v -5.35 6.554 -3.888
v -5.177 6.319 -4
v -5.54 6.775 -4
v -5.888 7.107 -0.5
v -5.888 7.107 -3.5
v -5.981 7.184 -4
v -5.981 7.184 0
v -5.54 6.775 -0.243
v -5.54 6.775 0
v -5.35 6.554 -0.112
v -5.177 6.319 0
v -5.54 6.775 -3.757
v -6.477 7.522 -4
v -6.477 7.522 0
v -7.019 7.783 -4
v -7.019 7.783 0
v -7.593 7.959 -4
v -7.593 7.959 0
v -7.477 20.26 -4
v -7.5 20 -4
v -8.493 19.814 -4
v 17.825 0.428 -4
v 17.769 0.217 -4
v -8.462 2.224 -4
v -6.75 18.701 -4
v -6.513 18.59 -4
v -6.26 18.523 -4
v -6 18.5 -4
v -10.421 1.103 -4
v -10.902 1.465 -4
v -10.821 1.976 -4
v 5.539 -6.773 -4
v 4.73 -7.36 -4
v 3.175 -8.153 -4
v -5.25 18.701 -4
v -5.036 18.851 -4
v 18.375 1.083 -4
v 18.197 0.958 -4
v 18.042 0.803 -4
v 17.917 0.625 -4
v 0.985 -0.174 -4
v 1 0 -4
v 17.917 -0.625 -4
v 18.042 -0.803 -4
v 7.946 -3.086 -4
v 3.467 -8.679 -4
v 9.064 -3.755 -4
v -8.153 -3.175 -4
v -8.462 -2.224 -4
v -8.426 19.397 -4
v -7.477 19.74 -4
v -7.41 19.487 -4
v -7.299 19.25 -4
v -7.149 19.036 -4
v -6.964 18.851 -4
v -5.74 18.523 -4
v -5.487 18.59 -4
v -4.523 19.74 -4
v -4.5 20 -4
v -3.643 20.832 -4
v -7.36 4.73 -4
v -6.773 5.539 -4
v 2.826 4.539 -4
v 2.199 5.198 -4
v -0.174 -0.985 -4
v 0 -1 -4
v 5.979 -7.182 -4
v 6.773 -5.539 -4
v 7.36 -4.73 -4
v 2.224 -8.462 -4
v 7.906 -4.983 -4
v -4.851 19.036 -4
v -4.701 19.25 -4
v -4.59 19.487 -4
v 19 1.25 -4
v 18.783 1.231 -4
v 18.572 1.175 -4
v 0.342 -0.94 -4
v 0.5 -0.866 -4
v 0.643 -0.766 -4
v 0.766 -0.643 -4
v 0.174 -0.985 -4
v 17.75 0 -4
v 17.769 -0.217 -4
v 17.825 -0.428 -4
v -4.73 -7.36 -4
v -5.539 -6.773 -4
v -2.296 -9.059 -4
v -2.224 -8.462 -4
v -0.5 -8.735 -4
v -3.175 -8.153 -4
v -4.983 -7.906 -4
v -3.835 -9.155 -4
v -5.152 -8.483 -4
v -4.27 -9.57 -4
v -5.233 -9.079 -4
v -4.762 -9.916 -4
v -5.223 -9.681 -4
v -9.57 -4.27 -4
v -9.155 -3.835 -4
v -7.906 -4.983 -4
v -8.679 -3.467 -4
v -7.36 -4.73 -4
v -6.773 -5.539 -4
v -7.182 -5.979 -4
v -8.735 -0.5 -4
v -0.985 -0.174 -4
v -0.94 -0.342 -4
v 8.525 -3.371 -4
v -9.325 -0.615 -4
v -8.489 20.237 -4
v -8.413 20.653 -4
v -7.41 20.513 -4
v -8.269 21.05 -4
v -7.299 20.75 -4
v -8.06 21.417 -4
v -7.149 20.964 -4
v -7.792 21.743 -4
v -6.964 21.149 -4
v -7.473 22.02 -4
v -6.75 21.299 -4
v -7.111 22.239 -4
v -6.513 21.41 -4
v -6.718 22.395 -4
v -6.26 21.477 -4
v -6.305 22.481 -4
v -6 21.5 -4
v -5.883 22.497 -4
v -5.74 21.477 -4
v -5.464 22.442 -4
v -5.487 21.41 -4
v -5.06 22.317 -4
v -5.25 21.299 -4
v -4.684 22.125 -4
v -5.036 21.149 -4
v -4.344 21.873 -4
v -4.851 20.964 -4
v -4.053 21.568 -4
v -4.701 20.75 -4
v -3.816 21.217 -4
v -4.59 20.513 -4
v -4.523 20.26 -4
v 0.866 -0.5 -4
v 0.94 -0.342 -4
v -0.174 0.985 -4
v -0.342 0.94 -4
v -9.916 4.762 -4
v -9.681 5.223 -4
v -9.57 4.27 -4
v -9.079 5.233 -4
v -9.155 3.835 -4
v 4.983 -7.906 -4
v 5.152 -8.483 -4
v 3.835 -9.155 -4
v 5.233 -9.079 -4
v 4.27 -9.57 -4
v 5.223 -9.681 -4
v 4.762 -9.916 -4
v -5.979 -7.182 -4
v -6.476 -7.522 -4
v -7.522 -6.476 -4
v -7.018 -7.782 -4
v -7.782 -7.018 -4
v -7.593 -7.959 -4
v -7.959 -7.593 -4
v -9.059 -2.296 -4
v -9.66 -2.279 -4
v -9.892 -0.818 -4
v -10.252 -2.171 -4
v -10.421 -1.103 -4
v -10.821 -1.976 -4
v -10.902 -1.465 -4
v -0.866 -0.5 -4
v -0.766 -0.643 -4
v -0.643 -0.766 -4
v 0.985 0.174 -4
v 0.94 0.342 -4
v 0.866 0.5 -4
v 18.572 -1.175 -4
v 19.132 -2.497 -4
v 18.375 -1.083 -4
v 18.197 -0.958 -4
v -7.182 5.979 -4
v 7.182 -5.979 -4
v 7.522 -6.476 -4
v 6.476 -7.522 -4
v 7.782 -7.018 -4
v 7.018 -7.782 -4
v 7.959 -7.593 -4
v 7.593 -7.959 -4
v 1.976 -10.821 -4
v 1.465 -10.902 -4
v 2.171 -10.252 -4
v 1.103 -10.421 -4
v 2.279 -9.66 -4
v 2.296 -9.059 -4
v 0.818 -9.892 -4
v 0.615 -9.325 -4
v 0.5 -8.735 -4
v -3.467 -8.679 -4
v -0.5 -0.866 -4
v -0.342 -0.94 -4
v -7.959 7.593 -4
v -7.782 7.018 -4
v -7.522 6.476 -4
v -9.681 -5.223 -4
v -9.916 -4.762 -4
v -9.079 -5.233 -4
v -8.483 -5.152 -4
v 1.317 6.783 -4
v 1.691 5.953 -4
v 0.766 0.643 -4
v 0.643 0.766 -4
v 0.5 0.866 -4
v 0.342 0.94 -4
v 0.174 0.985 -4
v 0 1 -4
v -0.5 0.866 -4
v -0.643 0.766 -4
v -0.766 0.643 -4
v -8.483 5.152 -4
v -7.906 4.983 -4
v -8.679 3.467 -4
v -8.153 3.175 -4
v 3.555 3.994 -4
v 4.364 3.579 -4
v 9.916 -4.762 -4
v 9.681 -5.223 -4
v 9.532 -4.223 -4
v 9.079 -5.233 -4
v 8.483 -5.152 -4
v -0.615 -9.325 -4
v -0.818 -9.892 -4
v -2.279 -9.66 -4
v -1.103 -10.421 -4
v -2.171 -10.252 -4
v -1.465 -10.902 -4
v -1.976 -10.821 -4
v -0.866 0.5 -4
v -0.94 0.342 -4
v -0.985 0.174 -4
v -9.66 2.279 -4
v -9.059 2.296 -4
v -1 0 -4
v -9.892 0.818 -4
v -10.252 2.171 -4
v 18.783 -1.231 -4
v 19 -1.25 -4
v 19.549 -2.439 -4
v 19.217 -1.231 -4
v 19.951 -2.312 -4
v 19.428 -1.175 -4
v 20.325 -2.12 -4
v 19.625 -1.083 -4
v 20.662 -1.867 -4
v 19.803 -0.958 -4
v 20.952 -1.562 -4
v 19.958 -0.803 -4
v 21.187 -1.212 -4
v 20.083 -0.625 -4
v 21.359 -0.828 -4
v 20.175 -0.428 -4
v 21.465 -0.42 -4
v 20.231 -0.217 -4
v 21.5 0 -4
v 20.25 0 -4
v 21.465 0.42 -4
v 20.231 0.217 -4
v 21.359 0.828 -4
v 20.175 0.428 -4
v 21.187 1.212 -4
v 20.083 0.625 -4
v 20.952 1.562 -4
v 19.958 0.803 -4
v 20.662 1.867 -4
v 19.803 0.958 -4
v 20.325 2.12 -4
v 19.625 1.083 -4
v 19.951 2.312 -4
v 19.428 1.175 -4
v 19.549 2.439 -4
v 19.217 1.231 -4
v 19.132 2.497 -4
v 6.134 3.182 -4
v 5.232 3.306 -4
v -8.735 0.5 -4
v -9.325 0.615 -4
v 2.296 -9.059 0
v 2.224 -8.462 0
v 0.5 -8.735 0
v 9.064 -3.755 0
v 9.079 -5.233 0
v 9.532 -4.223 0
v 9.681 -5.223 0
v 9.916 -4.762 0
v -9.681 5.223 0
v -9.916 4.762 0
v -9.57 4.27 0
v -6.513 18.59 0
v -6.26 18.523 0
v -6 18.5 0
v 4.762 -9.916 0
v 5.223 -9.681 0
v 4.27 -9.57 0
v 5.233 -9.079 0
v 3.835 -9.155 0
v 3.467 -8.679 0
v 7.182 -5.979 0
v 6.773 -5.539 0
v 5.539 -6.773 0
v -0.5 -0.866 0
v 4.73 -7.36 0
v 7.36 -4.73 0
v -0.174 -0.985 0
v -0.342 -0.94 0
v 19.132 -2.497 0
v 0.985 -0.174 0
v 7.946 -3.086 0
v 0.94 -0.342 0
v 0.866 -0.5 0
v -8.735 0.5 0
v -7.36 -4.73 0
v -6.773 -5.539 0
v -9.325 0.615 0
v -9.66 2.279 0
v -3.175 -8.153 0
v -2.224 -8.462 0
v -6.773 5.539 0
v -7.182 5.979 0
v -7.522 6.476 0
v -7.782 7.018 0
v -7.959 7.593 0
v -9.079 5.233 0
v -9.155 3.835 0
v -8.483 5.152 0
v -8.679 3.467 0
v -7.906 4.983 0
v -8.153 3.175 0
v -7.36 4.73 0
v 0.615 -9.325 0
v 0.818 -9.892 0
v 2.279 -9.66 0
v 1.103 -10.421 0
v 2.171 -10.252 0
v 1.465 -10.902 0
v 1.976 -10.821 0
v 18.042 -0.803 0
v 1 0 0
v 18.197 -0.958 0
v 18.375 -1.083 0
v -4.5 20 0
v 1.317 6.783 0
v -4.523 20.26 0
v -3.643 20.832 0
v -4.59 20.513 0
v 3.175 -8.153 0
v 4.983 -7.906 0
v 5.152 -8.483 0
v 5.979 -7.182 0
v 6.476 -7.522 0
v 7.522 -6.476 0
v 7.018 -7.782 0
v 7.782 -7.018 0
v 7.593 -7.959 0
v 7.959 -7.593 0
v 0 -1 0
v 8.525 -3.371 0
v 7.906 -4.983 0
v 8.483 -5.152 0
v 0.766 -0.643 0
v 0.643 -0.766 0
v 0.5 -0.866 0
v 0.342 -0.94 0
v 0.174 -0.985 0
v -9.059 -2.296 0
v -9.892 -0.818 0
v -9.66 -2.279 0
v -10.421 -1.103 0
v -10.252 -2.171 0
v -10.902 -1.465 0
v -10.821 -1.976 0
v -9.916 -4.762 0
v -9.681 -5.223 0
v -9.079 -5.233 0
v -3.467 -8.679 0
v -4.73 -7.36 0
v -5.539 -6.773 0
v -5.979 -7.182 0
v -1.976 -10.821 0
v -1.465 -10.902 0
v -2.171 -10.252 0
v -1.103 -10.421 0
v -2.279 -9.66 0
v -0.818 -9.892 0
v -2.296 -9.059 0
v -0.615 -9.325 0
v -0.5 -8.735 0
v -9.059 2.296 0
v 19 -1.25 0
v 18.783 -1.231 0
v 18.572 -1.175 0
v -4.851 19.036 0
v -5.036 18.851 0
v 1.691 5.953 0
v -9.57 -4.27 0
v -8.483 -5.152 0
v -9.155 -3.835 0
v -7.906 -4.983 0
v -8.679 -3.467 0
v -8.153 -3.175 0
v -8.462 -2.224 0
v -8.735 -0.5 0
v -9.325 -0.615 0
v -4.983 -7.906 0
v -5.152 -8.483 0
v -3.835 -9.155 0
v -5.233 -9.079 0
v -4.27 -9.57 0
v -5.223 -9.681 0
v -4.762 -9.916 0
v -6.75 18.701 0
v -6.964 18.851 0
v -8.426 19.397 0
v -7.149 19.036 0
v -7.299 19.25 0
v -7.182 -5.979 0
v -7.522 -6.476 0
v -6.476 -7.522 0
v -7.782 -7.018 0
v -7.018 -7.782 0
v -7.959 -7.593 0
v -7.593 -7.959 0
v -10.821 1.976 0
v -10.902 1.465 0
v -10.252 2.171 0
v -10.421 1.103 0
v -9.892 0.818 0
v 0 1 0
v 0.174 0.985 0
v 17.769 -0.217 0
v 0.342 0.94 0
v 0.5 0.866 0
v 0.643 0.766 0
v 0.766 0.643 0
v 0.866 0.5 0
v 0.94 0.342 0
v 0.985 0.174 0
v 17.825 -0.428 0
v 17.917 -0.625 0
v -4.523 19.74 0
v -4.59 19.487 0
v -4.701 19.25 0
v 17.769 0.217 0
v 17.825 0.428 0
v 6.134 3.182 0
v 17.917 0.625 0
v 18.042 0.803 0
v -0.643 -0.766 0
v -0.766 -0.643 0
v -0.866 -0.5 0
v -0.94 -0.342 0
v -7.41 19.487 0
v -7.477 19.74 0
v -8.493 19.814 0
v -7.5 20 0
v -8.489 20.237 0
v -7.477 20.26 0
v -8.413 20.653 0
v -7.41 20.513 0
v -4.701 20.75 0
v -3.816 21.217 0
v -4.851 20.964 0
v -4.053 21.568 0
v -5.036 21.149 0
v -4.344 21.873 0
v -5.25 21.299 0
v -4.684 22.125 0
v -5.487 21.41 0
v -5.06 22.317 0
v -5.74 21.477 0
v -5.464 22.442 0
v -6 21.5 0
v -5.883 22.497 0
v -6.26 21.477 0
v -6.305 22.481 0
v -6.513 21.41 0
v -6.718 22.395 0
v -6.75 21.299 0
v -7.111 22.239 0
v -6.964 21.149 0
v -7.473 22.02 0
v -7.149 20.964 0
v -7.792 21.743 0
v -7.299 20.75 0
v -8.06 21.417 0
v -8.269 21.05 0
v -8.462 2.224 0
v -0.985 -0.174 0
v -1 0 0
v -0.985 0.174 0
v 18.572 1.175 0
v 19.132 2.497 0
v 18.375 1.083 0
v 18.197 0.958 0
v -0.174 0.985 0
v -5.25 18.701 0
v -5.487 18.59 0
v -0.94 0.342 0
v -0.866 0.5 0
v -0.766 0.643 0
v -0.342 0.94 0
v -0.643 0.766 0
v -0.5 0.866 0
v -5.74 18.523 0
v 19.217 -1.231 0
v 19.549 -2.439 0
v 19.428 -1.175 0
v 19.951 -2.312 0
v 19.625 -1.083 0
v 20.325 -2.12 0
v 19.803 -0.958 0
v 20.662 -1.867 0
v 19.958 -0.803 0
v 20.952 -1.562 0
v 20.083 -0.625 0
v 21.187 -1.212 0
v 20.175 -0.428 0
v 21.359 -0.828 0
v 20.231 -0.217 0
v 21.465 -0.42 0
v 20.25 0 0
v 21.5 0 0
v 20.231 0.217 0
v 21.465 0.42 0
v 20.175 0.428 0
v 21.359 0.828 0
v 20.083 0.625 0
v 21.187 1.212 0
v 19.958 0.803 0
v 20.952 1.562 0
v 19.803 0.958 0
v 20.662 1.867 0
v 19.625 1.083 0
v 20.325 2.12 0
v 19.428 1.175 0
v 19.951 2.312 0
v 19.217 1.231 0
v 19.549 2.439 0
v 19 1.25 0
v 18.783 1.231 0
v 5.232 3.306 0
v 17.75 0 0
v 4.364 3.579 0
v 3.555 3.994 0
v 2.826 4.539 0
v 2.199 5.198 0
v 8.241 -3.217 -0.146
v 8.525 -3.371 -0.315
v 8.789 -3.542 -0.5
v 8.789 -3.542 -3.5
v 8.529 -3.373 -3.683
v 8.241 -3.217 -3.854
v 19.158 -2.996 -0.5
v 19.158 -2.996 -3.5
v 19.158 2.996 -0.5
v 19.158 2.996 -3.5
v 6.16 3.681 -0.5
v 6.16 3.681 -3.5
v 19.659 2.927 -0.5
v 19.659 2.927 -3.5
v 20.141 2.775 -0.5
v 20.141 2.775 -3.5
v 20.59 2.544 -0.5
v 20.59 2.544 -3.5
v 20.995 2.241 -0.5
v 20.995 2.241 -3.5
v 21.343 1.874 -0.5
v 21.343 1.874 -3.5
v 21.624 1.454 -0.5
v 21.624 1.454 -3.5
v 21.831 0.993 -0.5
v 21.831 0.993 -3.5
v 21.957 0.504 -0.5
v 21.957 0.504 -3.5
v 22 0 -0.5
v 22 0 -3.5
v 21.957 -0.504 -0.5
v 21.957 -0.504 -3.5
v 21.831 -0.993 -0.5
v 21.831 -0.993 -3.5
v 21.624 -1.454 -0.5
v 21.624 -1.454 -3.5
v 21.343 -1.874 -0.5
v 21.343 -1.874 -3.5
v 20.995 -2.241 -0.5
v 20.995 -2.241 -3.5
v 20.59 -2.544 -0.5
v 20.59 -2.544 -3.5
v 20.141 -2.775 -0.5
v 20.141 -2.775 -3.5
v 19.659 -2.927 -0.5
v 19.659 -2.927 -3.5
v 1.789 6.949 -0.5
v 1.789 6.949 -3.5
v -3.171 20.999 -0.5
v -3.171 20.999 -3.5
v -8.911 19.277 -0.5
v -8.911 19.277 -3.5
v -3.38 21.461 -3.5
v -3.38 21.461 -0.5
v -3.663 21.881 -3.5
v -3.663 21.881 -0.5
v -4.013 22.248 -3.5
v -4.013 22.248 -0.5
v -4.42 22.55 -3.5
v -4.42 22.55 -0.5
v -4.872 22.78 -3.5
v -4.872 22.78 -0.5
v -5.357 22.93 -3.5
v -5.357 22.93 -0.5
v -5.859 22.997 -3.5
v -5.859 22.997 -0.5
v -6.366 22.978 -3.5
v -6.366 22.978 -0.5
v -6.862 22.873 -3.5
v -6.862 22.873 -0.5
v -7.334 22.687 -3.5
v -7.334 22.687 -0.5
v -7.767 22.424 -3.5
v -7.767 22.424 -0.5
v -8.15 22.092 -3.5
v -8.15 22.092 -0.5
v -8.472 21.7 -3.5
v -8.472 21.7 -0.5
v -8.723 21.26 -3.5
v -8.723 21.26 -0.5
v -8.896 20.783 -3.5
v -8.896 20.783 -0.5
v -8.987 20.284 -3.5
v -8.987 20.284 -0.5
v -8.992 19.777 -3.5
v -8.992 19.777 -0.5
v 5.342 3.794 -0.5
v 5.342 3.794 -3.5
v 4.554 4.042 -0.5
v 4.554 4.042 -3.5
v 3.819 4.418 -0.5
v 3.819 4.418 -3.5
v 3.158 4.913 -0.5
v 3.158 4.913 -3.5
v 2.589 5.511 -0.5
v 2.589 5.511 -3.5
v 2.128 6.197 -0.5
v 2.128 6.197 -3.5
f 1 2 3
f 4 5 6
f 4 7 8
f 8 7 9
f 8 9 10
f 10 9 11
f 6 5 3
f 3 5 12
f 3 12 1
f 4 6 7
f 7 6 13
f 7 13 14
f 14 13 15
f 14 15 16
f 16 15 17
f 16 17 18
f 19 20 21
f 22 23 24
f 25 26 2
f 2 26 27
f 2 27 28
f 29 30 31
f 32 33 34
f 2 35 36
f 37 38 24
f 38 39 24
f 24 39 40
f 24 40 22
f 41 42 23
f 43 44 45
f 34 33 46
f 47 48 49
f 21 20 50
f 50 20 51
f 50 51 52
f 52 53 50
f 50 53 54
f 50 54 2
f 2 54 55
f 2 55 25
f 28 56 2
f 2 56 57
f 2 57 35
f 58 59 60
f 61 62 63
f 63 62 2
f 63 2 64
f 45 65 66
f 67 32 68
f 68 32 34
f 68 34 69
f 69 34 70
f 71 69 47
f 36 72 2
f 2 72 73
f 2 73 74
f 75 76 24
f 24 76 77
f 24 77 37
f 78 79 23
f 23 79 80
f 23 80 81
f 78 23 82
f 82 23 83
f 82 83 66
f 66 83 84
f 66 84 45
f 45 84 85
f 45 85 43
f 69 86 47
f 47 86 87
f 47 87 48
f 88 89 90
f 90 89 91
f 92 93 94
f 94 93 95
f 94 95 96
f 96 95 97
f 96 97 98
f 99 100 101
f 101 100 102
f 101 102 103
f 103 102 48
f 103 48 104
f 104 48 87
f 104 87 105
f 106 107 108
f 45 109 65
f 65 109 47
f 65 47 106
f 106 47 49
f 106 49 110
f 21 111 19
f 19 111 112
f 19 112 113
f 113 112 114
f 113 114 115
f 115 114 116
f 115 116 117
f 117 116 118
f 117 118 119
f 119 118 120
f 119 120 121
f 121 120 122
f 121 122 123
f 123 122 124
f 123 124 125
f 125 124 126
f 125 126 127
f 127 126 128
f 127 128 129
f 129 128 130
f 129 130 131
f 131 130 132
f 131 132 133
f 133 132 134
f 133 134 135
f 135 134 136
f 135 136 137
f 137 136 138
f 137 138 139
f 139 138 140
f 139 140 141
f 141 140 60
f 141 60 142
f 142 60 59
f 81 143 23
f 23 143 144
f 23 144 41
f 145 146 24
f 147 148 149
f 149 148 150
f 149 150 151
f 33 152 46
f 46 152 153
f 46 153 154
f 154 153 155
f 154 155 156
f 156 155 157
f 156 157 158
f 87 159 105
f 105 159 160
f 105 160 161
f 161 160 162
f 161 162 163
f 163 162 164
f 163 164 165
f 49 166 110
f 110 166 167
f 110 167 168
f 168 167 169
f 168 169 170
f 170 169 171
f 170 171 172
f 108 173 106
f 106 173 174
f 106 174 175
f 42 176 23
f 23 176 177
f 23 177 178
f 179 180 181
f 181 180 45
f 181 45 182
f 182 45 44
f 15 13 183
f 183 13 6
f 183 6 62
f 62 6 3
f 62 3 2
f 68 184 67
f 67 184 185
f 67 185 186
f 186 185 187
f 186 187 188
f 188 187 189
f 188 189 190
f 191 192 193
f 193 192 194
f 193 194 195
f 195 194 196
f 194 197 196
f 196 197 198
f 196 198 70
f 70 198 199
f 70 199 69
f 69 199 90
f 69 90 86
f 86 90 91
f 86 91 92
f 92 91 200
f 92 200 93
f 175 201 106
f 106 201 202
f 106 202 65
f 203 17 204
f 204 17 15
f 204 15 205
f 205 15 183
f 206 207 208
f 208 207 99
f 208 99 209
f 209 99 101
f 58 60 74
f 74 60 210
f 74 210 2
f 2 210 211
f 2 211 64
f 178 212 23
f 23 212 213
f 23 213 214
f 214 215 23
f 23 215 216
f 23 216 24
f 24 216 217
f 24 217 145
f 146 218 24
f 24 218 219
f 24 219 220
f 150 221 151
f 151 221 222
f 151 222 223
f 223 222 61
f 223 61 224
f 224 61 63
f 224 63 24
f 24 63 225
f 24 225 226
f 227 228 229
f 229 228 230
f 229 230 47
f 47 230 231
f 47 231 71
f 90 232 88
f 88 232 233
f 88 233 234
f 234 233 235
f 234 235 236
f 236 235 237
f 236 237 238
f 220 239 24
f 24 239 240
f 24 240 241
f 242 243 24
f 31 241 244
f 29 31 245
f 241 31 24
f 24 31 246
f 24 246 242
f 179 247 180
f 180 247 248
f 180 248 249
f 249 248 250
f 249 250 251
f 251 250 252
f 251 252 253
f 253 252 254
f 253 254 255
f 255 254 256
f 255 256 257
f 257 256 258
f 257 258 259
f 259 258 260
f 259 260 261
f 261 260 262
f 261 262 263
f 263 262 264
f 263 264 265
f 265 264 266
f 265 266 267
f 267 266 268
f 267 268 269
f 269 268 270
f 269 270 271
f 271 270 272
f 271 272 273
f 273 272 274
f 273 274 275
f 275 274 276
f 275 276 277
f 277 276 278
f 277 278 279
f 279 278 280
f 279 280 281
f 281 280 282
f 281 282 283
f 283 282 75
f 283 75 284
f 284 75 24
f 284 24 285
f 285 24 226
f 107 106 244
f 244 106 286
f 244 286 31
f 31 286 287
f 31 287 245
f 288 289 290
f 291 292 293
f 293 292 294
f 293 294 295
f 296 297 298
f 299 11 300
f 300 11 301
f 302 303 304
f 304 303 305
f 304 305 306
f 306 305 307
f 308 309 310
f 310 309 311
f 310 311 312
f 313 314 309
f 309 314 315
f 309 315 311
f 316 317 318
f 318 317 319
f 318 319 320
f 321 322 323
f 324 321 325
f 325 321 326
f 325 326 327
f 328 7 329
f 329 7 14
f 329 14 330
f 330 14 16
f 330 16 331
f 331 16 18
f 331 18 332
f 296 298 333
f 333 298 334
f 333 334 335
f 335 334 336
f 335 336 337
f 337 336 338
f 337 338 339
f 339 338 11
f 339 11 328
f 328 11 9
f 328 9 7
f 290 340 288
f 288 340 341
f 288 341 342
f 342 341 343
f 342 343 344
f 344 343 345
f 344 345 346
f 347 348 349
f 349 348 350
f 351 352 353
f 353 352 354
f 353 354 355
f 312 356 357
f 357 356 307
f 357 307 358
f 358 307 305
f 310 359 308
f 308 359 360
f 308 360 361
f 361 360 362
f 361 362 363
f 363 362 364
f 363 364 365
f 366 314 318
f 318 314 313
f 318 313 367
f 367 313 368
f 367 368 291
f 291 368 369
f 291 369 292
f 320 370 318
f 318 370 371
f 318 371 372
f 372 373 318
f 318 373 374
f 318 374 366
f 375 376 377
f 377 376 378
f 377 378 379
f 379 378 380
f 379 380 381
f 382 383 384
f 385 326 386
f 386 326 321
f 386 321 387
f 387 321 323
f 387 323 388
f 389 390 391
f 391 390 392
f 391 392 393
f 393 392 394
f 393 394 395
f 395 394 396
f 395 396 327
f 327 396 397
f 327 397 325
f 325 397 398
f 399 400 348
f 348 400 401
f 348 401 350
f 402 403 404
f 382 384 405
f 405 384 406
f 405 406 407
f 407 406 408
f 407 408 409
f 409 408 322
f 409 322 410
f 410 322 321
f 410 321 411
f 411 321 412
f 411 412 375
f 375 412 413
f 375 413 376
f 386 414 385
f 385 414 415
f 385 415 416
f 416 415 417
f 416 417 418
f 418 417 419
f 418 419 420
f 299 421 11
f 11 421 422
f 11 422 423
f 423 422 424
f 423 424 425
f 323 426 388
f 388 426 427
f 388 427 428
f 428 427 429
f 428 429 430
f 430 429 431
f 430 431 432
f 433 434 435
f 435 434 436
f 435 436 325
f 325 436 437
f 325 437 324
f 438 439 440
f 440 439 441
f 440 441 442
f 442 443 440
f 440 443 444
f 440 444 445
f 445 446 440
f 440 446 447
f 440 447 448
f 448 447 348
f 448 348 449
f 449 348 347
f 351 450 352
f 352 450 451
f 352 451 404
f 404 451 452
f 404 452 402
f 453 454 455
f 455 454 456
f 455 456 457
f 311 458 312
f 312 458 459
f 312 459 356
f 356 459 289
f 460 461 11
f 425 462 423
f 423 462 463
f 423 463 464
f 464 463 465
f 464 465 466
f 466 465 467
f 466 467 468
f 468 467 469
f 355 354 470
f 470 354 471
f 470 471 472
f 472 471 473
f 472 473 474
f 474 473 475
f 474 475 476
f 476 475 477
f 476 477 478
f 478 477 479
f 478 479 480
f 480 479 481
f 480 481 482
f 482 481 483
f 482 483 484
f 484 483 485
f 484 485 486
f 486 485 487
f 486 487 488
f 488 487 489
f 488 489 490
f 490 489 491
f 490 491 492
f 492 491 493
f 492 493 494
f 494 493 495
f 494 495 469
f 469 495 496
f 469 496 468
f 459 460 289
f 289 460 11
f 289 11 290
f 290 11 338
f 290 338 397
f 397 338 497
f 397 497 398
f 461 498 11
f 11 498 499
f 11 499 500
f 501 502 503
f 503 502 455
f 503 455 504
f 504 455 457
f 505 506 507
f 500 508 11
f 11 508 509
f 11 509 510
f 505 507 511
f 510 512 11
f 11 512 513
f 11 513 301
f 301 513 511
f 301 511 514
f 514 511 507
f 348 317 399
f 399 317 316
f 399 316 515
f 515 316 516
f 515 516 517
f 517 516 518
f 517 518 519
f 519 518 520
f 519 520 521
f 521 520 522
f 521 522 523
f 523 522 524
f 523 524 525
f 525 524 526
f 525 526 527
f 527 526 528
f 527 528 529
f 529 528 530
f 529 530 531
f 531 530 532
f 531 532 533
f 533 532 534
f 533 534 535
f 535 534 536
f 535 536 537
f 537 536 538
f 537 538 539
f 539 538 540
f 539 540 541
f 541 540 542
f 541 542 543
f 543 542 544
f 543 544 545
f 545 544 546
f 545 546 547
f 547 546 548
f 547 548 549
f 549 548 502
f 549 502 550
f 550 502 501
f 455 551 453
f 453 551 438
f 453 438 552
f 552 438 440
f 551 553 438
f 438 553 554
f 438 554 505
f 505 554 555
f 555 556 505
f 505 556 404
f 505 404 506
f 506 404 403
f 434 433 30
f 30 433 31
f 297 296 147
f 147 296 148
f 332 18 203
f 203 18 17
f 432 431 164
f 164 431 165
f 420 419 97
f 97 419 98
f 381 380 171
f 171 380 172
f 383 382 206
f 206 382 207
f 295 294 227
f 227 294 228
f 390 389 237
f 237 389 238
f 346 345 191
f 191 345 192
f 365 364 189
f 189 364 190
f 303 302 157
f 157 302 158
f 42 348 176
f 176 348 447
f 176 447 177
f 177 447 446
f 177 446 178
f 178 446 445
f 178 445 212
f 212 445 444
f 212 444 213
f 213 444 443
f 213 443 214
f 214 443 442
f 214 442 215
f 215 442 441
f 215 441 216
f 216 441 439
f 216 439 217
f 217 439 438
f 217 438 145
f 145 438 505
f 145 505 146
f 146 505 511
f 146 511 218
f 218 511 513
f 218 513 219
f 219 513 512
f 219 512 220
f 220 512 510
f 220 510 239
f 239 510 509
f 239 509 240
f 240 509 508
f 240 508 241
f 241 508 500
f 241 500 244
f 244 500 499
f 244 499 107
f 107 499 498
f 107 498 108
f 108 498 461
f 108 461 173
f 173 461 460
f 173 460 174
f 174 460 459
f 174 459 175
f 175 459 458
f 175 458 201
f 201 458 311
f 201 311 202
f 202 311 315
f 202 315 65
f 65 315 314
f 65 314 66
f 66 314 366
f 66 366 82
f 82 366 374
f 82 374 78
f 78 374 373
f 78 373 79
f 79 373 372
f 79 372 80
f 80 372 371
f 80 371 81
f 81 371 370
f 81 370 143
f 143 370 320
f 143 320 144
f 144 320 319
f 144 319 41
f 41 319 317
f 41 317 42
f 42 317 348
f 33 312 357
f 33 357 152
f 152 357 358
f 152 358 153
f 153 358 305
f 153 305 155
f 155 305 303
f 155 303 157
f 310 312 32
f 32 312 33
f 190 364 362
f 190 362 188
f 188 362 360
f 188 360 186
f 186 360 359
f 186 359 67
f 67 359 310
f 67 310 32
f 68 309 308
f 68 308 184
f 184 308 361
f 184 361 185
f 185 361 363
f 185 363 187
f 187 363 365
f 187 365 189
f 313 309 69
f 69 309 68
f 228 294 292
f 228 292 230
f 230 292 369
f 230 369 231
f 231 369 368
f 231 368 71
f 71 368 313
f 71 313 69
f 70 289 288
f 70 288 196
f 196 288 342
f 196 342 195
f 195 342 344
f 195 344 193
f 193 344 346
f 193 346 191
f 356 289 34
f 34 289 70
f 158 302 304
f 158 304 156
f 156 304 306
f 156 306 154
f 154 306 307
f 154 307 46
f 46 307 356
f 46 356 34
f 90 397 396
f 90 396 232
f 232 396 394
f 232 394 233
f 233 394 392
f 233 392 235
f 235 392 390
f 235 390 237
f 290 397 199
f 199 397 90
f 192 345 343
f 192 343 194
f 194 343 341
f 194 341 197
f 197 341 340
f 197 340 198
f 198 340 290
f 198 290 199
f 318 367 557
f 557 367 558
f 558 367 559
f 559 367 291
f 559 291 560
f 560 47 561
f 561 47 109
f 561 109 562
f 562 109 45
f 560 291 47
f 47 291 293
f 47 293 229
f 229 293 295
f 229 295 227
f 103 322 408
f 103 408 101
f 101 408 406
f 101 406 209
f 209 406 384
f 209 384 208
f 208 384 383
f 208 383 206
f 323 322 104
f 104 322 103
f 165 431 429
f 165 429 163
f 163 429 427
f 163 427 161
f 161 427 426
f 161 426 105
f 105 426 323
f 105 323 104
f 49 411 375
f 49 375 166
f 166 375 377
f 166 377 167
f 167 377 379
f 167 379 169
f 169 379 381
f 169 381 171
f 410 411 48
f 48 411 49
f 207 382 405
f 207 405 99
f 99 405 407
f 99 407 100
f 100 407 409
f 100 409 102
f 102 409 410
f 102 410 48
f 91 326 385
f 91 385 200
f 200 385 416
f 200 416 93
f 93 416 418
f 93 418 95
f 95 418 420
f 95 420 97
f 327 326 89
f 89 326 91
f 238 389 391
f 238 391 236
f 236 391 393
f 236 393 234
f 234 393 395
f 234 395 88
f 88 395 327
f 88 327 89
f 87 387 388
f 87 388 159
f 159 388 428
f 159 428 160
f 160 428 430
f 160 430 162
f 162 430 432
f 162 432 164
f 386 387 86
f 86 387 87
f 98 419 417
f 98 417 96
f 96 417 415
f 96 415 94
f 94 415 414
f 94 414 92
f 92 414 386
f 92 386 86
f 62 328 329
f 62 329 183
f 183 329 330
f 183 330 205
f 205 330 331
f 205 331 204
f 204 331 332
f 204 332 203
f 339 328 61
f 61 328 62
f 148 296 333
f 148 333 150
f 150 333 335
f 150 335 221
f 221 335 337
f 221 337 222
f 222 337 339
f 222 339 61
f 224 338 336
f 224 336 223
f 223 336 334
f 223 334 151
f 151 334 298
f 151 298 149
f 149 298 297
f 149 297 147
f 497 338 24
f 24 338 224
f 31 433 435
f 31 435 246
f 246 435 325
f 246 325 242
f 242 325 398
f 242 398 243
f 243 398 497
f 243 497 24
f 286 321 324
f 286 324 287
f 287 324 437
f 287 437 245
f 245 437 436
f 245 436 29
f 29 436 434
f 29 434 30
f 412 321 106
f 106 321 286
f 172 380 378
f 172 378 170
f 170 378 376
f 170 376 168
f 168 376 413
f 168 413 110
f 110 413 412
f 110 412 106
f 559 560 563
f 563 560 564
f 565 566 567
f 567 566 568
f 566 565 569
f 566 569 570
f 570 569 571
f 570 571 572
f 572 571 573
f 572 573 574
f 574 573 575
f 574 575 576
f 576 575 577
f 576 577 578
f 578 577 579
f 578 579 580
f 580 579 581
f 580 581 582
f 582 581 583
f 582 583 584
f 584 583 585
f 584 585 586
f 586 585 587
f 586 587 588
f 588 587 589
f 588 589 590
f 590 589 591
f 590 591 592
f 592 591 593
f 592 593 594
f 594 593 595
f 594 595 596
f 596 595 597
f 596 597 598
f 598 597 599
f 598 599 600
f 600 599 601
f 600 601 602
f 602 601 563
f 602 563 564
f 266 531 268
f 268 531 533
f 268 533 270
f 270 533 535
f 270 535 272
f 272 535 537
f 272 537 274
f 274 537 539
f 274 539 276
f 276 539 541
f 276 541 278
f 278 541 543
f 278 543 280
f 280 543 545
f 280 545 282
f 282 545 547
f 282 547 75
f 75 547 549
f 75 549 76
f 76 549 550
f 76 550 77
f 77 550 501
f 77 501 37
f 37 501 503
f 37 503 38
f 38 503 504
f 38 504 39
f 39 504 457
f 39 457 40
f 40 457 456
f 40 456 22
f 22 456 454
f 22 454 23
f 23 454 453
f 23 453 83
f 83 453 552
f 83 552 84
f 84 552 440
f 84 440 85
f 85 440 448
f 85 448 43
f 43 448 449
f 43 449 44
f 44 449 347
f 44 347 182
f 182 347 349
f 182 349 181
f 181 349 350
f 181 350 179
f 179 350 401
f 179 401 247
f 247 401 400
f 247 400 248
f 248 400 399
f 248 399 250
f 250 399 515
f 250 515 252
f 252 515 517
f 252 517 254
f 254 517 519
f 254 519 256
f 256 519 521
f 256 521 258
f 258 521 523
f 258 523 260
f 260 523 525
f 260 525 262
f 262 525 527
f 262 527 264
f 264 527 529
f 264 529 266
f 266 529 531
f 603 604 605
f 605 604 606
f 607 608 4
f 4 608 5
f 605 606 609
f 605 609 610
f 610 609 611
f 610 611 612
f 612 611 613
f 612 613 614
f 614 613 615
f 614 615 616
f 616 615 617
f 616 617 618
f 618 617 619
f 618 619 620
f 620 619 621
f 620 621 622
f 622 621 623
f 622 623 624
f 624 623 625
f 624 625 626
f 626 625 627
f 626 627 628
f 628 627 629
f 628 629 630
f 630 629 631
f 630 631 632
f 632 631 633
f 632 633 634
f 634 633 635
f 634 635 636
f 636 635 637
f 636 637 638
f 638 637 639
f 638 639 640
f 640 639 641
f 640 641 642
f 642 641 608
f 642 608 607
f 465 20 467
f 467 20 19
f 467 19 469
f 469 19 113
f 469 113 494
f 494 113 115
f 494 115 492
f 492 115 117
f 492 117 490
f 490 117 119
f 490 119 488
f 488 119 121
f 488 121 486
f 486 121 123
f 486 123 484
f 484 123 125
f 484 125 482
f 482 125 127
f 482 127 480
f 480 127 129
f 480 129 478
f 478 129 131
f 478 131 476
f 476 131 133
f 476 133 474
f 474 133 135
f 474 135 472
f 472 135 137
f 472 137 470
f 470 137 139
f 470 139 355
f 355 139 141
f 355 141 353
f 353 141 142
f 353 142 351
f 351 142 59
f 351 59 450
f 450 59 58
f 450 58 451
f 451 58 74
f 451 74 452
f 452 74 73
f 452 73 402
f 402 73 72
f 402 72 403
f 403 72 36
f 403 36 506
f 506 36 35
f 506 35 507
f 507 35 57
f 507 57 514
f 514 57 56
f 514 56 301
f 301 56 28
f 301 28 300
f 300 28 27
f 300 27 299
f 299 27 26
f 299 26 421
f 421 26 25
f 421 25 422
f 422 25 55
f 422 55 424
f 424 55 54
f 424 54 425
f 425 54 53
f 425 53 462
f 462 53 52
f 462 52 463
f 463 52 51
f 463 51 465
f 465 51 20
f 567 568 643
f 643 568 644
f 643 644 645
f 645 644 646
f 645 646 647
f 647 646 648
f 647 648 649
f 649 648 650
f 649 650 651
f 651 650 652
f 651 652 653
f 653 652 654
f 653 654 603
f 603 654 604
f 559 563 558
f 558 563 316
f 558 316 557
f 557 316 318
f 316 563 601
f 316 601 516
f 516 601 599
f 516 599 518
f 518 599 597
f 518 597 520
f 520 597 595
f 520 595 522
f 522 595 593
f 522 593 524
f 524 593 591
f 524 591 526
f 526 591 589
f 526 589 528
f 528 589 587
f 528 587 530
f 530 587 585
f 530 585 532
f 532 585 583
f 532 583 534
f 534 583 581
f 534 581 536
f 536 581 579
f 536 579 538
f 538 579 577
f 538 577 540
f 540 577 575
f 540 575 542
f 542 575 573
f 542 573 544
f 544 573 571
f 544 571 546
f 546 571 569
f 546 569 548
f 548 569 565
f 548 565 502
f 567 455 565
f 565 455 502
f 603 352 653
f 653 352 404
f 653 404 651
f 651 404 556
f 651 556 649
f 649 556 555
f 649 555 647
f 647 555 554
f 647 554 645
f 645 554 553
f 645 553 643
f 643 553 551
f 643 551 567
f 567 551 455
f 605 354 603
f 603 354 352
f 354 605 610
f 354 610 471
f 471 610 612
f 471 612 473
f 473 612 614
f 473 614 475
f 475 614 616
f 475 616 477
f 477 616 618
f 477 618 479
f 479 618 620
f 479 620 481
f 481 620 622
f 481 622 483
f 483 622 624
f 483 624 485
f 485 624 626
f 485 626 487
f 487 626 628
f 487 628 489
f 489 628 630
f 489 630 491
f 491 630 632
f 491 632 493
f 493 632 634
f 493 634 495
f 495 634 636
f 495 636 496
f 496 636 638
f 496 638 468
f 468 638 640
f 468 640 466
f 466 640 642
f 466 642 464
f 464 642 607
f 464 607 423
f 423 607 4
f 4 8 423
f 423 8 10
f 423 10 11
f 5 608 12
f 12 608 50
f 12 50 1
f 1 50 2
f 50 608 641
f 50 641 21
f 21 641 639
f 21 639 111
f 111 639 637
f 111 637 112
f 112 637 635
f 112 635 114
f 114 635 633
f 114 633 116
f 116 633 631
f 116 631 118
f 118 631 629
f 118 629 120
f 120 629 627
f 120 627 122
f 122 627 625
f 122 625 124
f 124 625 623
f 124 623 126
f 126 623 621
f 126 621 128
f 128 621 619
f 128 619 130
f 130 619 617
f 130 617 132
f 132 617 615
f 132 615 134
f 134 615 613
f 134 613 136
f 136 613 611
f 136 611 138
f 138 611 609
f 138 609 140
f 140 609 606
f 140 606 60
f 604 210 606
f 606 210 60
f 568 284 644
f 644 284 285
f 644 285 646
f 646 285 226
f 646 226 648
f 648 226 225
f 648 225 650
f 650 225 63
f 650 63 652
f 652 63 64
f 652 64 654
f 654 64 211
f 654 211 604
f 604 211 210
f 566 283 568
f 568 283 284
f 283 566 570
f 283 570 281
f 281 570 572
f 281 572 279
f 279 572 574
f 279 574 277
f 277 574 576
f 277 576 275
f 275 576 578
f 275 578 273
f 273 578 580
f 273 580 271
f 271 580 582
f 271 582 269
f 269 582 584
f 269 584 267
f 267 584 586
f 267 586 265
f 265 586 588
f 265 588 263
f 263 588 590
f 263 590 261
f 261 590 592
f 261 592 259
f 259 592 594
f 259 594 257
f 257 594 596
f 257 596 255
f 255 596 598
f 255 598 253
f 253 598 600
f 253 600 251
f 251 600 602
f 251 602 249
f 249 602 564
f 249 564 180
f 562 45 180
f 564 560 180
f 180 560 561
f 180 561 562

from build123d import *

# Parameters (mm, degrees)
CROQUIS7_R              = 11
CROQUIS7_R_2            = 1
SALIENTE_EXTRUIR4_DEPTH = 4
CORTAR_EXTRUIR3_DEPTH   = 17.062378404
MATRIZC3_COUNT          = 20
CROQUIS9_R              = 1
CROQUIS9_R_2            = 1.25
SALIENTE_EXTRUIR5_DEPTH = 4
CROQUIS2_R              = 1
CROQUIS2_R_2            = 1.5
SALIENTE_EXTRUIR2_DEPTH = 4
CORTAR_EXTRUIR4_DEPTH   = 33.078029865
CHAFL_N1_SIZE           = 0.5


with BuildPart() as part:
    # Croquis7 → Saliente-Extruir4 (new body)
    with BuildSketch(Plane.XY):
        Circle(CROQUIS7_R)
        Circle(CROQUIS7_R_2, mode=Mode.SUBTRACT)
    extrude(amount=-SALIENTE_EXTRUIR4_DEPTH)

    # Croquis10 → Cortar-Extruir3 (cut, through all)
    with BuildSketch(Plane.XY):
        with BuildLine():
            ThreePointArc((0.499924007, 8.734705318), (0, 8.749), (-0.499924007, 8.734705318))
            ThreePointArc((-0.499924007, 8.734705318), (-0.824302243, 9.905497836), (-1.485192705, 10.924909509))
            ThreePointArc((-1.485192705, 10.924909509), (0, 11.0254), (1.485192705, 10.924909509))
            ThreePointArc((1.485192705, 10.924909509), (0.824302243, 9.905497836), (0.499924007, 8.734705318))
        make_face()
    cortar_extruir3 = extrude(amount=-CORTAR_EXTRUIR3_DEPTH, mode=Mode.SUBTRACT)

    # MatrizC3: Cortar-Extruir3 ×20 about axis
    matrizc3_axis = Axis((0, 0, 0), (0, 0, 1))
    for i in range(1, MATRIZC3_COUNT):
        add(cortar_extruir3.rotate(matrizc3_axis, i * 360 / MATRIZC3_COUNT), mode=Mode.SUBTRACT)

    # Croquis9 → Saliente-Extruir5 (add)
    with BuildSketch(Plane.XY):
        with BuildLine():
            Line((0.210526316, 3.994455992), (19.157894737, 2.995841994))
            ThreePointArc((19.157894737, 2.995841994), (22, 0), (19.157894737, -2.995841994))
            Line((19.157894737, -2.995841994), (0.210526316, -3.994455992))
            ThreePointArc((0.210526316, -3.994455992), (-4, 0), (0.210526316, 3.994455992))
        make_face()
        Circle(CROQUIS9_R, mode=Mode.SUBTRACT)
        with Locations((19, 0)):
            Circle(CROQUIS9_R_2, mode=Mode.SUBTRACT)
    extrude(amount=-SALIENTE_EXTRUIR5_DEPTH)

    # Croquis2 → Saliente-Extruir2 (add, through all)
    with BuildSketch(Plane.XY.offset(-4)):
        with BuildLine():
            Line((-3.171102714, 20.998669186), (3.771863049, 1.331558915))
            ThreePointArc((3.771863049, 1.331558915), (1.149391542, -3.831305141), (-3.881954792, -0.964586438))
            Line((-3.881954792, -0.964586438), (-8.911466094, 19.276560172))
            ThreePointArc((-8.911466094, 19.276560172), (-6.862043657, 22.873478856), (-3.171102714, 20.998669186))
        make_face()
        Circle(CROQUIS2_R, mode=Mode.SUBTRACT)
        with Locations((-6, 20)):
            Circle(CROQUIS2_R_2, mode=Mode.SUBTRACT)
    extrude(amount=SALIENTE_EXTRUIR2_DEPTH)

    # Croquis11 → Cortar-Extruir4 (cut, through all)
    with BuildSketch(Plane(origin=(0, 0, -4), x_dir=(-1, 0, 0), z_dir=(0, 0, -1))):
        with BuildLine():
            Line((-0.780626911, 9.804734929), (-1.788639616, 6.949370564))
            ThreePointArc((-1.788639616, 6.949370564), (-3.478211644, 4.651731754), (-6.159867825, 3.680898163))
            Line((-6.159867825, 3.680898163), (-8.789028829, 3.542329211))
            Line((-8.789028829, 3.542329211), (-14.154797023, 5.193302426))
            Line((-14.154797023, 5.193302426), (-17.039697184, 17.319662426))
            Line((-17.039697184, 17.319662426), (-0.365952184, 17.319662426))
            Line((-0.365952184, 17.319662426), (-0.780626911, 9.804734929))
        make_face()
    extrude(amount=-CORTAR_EXTRUIR4_DEPTH, mode=Mode.SUBTRACT)

    # Chaflán1
    chafl_n1_edges = [part.edges().sort_by_distance(p)[0] for p in [
        (13.973461783, -3.269085602, -4),
        (12.658881281, 3.338370078, -4),
        (22, 0, -4),
        (13.973461783, -3.269085602, 0),
        (22, 0, 0),
        (12.658881281, 3.338370078, 0),
        (-0.691231549, 13.974019875, -4),
        (-7.399550596, 13.191892812, -4),
        (-0.691231549, 13.974019875, 0),
        (-6.862043657, 22.873478856, 0),
        (-7.399550596, 13.191892812, 0),
        (-6.862043657, 22.873478856, -4),
        (3.478211644, 4.651731754, -4),
        (3.478211644, 4.651731754, 0),
    ]]
    chamfer(chafl_n1_edges, length=CHAFL_N1_SIZE)


solid = part.part
